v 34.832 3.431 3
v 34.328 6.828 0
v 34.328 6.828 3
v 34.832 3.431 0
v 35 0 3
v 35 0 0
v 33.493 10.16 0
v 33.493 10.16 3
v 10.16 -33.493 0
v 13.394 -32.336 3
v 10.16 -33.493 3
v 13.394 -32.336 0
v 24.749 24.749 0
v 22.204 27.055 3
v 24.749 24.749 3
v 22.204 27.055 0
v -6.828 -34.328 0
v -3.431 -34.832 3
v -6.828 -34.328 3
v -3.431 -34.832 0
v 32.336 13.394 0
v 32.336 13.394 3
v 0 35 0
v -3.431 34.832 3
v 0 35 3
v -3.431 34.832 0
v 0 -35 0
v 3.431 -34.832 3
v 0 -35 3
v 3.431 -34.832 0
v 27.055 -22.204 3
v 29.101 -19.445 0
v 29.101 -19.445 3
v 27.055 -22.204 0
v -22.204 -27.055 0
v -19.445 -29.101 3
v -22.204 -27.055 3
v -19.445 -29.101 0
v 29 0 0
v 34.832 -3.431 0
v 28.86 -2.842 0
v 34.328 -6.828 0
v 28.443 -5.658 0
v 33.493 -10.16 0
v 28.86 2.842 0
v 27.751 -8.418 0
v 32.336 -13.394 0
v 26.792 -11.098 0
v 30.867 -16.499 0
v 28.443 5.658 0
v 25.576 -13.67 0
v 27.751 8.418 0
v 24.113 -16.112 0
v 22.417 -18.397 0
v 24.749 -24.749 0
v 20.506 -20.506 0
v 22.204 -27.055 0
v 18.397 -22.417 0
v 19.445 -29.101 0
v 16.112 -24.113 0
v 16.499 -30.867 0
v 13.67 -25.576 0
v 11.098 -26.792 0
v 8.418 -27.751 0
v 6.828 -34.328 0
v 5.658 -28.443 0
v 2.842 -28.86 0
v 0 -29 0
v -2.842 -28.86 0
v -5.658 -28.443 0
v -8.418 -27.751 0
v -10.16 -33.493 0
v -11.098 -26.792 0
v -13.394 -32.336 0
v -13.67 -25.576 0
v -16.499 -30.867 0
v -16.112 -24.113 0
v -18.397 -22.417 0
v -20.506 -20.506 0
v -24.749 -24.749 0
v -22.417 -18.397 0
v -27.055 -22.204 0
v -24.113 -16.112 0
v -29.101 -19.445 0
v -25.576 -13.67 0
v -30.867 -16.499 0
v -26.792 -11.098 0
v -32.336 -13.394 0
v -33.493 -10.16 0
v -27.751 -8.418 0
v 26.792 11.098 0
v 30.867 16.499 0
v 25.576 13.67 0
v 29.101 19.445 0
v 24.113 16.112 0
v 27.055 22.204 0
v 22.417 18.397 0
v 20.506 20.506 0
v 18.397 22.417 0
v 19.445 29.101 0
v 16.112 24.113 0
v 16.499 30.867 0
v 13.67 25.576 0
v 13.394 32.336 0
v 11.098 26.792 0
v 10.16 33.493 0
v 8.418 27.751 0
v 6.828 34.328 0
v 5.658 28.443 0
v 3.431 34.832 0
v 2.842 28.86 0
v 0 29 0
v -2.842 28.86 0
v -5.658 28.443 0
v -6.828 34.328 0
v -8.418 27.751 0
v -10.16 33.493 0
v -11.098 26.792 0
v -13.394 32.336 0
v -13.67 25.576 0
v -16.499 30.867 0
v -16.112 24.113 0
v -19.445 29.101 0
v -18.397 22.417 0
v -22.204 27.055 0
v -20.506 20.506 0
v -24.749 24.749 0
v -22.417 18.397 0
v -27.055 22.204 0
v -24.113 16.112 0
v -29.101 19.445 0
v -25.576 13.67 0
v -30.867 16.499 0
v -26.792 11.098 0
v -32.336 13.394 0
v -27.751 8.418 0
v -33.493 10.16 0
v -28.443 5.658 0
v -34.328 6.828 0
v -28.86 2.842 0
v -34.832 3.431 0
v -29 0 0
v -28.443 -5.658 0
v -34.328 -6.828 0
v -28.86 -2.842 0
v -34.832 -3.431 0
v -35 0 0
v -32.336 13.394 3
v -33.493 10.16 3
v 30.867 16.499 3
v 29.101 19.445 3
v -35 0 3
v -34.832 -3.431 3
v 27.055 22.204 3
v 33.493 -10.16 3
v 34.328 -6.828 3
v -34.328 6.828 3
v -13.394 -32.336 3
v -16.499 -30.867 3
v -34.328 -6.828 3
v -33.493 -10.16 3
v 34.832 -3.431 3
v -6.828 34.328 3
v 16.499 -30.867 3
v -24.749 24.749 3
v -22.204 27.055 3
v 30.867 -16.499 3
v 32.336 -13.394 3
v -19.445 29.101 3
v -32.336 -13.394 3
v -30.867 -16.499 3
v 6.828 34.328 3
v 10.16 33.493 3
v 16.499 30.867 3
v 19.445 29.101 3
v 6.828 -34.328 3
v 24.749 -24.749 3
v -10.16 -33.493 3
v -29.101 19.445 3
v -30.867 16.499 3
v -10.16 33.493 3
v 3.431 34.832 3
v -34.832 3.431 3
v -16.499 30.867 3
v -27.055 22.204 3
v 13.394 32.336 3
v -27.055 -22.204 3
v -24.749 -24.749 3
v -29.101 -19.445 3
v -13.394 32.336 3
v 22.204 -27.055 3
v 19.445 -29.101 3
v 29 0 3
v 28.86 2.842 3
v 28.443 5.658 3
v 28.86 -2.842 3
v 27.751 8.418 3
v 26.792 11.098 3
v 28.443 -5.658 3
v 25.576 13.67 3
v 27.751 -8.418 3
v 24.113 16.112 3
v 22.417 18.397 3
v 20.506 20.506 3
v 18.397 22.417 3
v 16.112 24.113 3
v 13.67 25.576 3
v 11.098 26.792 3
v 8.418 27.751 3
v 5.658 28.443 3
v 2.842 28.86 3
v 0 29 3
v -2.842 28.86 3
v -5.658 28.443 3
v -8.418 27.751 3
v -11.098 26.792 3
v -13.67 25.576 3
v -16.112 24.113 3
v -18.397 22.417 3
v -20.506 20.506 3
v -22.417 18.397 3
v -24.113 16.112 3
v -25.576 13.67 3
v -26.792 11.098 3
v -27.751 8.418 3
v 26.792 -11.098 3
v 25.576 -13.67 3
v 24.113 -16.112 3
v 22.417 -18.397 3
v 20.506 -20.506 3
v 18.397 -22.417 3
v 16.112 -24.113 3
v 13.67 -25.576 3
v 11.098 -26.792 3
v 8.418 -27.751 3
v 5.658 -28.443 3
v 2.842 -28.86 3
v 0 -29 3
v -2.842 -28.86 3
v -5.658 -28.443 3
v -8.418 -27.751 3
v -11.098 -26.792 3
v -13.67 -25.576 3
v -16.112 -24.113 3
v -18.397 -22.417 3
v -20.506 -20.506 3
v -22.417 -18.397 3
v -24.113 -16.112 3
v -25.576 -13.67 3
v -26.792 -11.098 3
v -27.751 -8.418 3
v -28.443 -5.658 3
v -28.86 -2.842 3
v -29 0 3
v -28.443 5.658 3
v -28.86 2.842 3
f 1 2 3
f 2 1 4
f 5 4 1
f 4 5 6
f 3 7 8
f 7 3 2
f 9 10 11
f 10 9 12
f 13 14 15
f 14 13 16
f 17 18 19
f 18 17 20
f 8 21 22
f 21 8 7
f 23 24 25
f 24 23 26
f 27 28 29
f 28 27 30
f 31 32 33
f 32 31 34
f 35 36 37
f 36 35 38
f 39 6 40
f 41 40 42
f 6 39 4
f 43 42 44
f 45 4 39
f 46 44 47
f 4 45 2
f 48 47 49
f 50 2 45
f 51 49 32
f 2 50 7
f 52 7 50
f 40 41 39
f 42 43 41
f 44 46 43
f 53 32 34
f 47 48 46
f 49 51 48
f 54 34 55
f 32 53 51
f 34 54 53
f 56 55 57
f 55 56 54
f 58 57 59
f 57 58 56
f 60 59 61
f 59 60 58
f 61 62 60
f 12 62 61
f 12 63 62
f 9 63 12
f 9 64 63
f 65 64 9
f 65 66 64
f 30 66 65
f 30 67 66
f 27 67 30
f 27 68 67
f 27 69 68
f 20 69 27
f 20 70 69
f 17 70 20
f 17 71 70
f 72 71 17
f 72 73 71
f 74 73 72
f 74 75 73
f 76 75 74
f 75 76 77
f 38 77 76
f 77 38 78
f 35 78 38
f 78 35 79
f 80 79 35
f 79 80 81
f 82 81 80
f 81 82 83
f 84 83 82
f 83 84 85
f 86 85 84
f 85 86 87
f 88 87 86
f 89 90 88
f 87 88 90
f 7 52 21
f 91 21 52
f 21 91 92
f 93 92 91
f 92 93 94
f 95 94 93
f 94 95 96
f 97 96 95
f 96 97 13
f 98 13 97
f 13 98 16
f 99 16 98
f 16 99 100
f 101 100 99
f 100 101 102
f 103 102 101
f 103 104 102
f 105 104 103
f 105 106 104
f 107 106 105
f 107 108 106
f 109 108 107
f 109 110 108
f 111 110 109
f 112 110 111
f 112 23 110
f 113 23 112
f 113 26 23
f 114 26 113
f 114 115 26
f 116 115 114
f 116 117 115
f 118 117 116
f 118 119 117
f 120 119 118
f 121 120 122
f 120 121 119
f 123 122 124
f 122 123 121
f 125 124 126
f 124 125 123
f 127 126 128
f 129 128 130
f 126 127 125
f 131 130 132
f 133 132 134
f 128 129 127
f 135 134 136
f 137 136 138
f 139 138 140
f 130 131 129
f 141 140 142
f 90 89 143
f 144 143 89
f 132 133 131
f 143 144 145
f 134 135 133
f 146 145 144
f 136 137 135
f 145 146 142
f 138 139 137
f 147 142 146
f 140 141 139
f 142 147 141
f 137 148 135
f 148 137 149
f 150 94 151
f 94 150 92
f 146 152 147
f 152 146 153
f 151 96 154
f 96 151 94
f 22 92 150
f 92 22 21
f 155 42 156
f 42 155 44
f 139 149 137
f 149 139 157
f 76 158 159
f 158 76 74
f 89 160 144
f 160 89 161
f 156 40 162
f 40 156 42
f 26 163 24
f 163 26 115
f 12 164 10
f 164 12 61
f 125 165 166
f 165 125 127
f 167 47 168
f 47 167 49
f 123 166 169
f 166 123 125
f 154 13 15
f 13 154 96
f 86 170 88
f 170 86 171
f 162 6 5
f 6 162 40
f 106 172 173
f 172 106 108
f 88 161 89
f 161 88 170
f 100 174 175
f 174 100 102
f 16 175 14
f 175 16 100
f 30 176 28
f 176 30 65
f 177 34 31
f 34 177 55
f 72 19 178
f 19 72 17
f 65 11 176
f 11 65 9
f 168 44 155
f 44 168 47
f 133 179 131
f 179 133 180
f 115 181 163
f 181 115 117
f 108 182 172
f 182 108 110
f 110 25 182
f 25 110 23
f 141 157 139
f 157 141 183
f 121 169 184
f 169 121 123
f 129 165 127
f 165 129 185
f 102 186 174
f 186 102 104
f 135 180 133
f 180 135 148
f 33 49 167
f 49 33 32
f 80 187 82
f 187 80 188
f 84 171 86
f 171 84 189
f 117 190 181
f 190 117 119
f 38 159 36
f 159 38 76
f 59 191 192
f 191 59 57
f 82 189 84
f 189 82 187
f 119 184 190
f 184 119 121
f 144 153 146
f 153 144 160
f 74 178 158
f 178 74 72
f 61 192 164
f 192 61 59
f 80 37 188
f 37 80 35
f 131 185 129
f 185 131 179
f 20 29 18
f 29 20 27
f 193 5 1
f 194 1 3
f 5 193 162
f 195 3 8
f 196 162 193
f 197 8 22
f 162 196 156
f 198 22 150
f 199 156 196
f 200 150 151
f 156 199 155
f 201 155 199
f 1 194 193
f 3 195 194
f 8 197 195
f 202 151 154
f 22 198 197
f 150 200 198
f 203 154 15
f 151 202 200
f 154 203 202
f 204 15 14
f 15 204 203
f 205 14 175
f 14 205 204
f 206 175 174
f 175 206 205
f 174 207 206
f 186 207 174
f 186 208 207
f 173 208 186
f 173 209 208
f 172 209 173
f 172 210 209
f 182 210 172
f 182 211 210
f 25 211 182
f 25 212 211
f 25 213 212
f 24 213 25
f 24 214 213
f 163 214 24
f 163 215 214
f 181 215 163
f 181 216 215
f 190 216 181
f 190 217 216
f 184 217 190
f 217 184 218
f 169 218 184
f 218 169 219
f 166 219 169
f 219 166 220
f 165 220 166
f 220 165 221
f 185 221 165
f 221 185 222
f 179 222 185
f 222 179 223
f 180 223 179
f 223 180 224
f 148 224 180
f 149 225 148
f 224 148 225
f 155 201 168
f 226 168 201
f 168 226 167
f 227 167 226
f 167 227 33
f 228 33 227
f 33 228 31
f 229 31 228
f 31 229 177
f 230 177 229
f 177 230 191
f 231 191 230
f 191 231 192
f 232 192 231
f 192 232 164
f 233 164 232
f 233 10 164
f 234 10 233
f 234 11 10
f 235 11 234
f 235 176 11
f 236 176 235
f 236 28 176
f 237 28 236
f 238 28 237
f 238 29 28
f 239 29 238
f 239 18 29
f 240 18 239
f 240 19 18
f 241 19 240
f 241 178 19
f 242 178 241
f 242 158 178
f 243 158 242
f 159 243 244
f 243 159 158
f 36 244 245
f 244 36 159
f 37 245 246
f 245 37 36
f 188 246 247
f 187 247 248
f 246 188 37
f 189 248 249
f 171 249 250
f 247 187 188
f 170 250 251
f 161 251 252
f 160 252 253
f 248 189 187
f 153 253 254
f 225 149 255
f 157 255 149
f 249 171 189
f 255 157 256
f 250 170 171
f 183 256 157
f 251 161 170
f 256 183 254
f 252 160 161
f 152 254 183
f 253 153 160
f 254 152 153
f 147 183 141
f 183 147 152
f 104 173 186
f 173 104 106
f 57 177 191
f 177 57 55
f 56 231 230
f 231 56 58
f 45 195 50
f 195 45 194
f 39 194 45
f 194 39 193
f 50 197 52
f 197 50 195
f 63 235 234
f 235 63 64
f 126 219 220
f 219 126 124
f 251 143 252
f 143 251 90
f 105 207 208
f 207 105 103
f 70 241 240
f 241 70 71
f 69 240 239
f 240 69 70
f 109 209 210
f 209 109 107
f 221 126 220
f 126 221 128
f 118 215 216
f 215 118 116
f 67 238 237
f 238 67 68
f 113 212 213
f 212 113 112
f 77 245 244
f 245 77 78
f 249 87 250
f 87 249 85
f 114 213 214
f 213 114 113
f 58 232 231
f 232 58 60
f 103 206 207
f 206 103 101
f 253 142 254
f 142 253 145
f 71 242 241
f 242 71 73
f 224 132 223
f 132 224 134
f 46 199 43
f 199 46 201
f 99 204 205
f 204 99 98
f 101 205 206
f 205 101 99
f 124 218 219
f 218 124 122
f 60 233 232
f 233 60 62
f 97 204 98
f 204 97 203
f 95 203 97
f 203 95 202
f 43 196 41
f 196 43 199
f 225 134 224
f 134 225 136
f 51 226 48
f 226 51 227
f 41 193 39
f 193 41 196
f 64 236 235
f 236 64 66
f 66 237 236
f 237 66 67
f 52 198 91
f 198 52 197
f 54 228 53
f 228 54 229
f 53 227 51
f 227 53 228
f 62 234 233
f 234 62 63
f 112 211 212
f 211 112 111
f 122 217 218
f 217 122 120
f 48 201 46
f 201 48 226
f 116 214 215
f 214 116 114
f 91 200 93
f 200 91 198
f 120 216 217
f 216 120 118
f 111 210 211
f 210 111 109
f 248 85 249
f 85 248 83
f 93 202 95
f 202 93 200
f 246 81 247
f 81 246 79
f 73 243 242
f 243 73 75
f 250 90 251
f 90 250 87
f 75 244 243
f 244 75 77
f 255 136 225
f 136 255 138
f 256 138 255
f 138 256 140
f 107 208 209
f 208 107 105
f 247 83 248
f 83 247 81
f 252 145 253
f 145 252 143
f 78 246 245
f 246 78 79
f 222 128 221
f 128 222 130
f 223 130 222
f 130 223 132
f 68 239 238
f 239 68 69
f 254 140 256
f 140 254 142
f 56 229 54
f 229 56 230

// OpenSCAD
// Lid insert remix for HC-SR04 + BME280 on a ~70mm canning-lid style disk.
// Print as a replacement for sourd.io insert_v25 when using common junk-box sensors.
// Units: millimeters
//
// Render:
//   openscad -o lid_insert_hc_sr04_bme280.stl -D 'PART="lid_insert"' lid_insert_hc_sr04_bme280.scad
//   openscad -o board_adapter_nrf52840.stl -D 'PART="board_adapter"' lid_insert_hc_sr04_bme280.scad
// Or: ../scripts/render_enclosure.sh

$fn = 64;

PART = "lid_insert"; // "lid_insert" | "board_adapter"

lid_od = 70;
lid_id = 62;
thickness = 3;

// HC-SR04 transducer centers ~25mm apart; module ~45 x 20
us_hole_d = 16.5;
us_spacing = 25;
us_offset_y = 8;

// BME280 breakout clearance / vent
bme_w = 16;
bme_h = 12;
bme_offset_y = -18;

// Board bay under upper stack — nRF52840 Feather / XIAO pocket
module board_adapter() {
  difference() {
    cube([55, 30, 4], center = true);
    // Feather-ish outline pocket
    translate([0, 0, 1]) cube([51, 23, 4], center = true);
    // screw holes M2.2-ish
    for (x = [-22, 22], y = [-10, 10])
      translate([x, y, 0]) cylinder(h = 10, d = 2.4, center = true);
  }
}

module lid_insert() {
  difference() {
    cylinder(h = thickness, d = lid_od);
    translate([0, 0, -1]) cylinder(h = thickness + 2, d = lid_id - 4);

    // Ultrasonic transducer holes
    translate([-us_spacing / 2, us_offset_y, -1])
      cylinder(h = thickness + 2, d = us_hole_d);
    translate([us_spacing / 2, us_offset_y, -1])
      cylinder(h = thickness + 2, d = us_hole_d);

    // BME280 vent / recess
    translate([0, bme_offset_y, thickness / 2])
      cube([bme_w, bme_h, thickness + 2], center = true);
  }
}

if (PART == "board_adapter") {
  board_adapter();
} else {
  lid_insert();
}
